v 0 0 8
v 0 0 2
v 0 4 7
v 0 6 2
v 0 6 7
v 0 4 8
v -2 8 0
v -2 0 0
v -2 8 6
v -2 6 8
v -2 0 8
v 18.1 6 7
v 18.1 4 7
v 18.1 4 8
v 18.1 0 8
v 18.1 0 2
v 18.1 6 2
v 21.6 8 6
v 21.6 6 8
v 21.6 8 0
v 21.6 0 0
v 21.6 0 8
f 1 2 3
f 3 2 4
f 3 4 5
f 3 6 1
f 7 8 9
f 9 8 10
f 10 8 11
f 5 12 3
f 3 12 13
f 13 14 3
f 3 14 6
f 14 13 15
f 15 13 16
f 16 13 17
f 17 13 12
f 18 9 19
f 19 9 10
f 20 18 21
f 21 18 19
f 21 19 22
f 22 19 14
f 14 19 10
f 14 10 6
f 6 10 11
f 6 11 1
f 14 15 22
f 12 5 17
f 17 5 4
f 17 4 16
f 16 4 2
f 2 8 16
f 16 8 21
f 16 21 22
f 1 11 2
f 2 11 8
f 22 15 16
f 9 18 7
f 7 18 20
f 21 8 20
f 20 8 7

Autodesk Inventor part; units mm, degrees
ref_plane "YZ Plane" through (0, 0, 0) normal (1, 0, 0) x (0, 1, 0)
ref_plane "XZ Plane" through (0, 0, 0) normal (0, 1, 0) x (-1, 0, 0)
sketch "Эскиз1" plane through (0, 0, 0) normal (0, 0, 1) x (1, 0, 0)
  line L0 (0, 0) -> (18.1, 0)
  line L1 (18.1, 0) -> (18.1, 8)
  line L2 (18.1, 8) -> (0, 8)
  line L3 (0, 8) -> (0, 0)
  dimension "d0" = 18.1
  dimension "d1" = 8
extrude "Выдавливание1" add sketch "Эскиз1" along normal blind 8
sketch "Эскиз2" plane through (0, 0, 8) normal (0, 0, 1) x (1, 0, 0)
  line L0 (0, 0) -> (18.1, 0) projected
  line L1 (18.1, 0) -> (18.1, 8) projected
  line L2 (0, 0) -> (18.1, 0)
  line L3 (18.1, 0) -> (18.1, 6)
  line L4 (18.1, 6) -> (0, 6)
  line L5 (0, 6) -> (0, 0)
  dimension "d4" = 6
extrude "Выдавливание2" cut sketch "Эскиз2" against normal blind 6
ref_plane "РабПлоскость1" through (9.05, 0, 0) normal (1, 0, 0) x (0, 0, -1)
sketch "Эскиз3" plane through (18.1, 0, 0) normal (1, 0, 0) x (0, 0, -1)
  line L0 (0, 8) -> (-8, 8) projected
  line L1 (0, 8) -> (0, 0) projected
  line L2 (-8, 8) -> (0, 8)
  line L3 (0, 8) -> (0, 0)
  line L4 (0, 0) -> (-8, 0)
  line L5 (-8, 0) -> (-8, 8)
extrude "Выдавливание3" add sketch "Эскиз3" along normal blind 3.5
chamfer "Фаска1" distance 2 angle 45 1 edges at (10.8, 8, 8)
sketch "Эскиз6" plane through (0, 6, 2) normal (0, -1, 0) x (1, 0, 0)
  line L0 (18.1, 6) -> (18.1, 0) projected
  line L1 (0, 6) -> (18.1, 6)
  line L2 (18.1, 6) -> (18.1, 5)
  line L3 (18.1, 5) -> (0, 5)
  line L4 (0, 5) -> (0, 6)
  line L5 (0, 0) -> (0, 6) projected
  point P0 (18, -2)
  dimension "d20" = 1
extrude "Выдавливание6" add sketch "Эскиз6" along normal blind 2
sketch "Эскиз7" plane through (0, 0, 0) normal (-1, 0, 0) x (0, 0, 1)
  line L0 (8, 6) -> (6, 8) projected
  line L1 (8, 6) -> (8, 0) projected
  line L2 (8, 0) -> (0, 0) projected
  line L3 (0, 0) -> (0, 8) projected
  line L4 (0, 8) -> (6, 8) projected
extrude "Выдавливание7" add sketch "Эскиз7" along normal blind 2
properties part number "Поворотный стоппер"
